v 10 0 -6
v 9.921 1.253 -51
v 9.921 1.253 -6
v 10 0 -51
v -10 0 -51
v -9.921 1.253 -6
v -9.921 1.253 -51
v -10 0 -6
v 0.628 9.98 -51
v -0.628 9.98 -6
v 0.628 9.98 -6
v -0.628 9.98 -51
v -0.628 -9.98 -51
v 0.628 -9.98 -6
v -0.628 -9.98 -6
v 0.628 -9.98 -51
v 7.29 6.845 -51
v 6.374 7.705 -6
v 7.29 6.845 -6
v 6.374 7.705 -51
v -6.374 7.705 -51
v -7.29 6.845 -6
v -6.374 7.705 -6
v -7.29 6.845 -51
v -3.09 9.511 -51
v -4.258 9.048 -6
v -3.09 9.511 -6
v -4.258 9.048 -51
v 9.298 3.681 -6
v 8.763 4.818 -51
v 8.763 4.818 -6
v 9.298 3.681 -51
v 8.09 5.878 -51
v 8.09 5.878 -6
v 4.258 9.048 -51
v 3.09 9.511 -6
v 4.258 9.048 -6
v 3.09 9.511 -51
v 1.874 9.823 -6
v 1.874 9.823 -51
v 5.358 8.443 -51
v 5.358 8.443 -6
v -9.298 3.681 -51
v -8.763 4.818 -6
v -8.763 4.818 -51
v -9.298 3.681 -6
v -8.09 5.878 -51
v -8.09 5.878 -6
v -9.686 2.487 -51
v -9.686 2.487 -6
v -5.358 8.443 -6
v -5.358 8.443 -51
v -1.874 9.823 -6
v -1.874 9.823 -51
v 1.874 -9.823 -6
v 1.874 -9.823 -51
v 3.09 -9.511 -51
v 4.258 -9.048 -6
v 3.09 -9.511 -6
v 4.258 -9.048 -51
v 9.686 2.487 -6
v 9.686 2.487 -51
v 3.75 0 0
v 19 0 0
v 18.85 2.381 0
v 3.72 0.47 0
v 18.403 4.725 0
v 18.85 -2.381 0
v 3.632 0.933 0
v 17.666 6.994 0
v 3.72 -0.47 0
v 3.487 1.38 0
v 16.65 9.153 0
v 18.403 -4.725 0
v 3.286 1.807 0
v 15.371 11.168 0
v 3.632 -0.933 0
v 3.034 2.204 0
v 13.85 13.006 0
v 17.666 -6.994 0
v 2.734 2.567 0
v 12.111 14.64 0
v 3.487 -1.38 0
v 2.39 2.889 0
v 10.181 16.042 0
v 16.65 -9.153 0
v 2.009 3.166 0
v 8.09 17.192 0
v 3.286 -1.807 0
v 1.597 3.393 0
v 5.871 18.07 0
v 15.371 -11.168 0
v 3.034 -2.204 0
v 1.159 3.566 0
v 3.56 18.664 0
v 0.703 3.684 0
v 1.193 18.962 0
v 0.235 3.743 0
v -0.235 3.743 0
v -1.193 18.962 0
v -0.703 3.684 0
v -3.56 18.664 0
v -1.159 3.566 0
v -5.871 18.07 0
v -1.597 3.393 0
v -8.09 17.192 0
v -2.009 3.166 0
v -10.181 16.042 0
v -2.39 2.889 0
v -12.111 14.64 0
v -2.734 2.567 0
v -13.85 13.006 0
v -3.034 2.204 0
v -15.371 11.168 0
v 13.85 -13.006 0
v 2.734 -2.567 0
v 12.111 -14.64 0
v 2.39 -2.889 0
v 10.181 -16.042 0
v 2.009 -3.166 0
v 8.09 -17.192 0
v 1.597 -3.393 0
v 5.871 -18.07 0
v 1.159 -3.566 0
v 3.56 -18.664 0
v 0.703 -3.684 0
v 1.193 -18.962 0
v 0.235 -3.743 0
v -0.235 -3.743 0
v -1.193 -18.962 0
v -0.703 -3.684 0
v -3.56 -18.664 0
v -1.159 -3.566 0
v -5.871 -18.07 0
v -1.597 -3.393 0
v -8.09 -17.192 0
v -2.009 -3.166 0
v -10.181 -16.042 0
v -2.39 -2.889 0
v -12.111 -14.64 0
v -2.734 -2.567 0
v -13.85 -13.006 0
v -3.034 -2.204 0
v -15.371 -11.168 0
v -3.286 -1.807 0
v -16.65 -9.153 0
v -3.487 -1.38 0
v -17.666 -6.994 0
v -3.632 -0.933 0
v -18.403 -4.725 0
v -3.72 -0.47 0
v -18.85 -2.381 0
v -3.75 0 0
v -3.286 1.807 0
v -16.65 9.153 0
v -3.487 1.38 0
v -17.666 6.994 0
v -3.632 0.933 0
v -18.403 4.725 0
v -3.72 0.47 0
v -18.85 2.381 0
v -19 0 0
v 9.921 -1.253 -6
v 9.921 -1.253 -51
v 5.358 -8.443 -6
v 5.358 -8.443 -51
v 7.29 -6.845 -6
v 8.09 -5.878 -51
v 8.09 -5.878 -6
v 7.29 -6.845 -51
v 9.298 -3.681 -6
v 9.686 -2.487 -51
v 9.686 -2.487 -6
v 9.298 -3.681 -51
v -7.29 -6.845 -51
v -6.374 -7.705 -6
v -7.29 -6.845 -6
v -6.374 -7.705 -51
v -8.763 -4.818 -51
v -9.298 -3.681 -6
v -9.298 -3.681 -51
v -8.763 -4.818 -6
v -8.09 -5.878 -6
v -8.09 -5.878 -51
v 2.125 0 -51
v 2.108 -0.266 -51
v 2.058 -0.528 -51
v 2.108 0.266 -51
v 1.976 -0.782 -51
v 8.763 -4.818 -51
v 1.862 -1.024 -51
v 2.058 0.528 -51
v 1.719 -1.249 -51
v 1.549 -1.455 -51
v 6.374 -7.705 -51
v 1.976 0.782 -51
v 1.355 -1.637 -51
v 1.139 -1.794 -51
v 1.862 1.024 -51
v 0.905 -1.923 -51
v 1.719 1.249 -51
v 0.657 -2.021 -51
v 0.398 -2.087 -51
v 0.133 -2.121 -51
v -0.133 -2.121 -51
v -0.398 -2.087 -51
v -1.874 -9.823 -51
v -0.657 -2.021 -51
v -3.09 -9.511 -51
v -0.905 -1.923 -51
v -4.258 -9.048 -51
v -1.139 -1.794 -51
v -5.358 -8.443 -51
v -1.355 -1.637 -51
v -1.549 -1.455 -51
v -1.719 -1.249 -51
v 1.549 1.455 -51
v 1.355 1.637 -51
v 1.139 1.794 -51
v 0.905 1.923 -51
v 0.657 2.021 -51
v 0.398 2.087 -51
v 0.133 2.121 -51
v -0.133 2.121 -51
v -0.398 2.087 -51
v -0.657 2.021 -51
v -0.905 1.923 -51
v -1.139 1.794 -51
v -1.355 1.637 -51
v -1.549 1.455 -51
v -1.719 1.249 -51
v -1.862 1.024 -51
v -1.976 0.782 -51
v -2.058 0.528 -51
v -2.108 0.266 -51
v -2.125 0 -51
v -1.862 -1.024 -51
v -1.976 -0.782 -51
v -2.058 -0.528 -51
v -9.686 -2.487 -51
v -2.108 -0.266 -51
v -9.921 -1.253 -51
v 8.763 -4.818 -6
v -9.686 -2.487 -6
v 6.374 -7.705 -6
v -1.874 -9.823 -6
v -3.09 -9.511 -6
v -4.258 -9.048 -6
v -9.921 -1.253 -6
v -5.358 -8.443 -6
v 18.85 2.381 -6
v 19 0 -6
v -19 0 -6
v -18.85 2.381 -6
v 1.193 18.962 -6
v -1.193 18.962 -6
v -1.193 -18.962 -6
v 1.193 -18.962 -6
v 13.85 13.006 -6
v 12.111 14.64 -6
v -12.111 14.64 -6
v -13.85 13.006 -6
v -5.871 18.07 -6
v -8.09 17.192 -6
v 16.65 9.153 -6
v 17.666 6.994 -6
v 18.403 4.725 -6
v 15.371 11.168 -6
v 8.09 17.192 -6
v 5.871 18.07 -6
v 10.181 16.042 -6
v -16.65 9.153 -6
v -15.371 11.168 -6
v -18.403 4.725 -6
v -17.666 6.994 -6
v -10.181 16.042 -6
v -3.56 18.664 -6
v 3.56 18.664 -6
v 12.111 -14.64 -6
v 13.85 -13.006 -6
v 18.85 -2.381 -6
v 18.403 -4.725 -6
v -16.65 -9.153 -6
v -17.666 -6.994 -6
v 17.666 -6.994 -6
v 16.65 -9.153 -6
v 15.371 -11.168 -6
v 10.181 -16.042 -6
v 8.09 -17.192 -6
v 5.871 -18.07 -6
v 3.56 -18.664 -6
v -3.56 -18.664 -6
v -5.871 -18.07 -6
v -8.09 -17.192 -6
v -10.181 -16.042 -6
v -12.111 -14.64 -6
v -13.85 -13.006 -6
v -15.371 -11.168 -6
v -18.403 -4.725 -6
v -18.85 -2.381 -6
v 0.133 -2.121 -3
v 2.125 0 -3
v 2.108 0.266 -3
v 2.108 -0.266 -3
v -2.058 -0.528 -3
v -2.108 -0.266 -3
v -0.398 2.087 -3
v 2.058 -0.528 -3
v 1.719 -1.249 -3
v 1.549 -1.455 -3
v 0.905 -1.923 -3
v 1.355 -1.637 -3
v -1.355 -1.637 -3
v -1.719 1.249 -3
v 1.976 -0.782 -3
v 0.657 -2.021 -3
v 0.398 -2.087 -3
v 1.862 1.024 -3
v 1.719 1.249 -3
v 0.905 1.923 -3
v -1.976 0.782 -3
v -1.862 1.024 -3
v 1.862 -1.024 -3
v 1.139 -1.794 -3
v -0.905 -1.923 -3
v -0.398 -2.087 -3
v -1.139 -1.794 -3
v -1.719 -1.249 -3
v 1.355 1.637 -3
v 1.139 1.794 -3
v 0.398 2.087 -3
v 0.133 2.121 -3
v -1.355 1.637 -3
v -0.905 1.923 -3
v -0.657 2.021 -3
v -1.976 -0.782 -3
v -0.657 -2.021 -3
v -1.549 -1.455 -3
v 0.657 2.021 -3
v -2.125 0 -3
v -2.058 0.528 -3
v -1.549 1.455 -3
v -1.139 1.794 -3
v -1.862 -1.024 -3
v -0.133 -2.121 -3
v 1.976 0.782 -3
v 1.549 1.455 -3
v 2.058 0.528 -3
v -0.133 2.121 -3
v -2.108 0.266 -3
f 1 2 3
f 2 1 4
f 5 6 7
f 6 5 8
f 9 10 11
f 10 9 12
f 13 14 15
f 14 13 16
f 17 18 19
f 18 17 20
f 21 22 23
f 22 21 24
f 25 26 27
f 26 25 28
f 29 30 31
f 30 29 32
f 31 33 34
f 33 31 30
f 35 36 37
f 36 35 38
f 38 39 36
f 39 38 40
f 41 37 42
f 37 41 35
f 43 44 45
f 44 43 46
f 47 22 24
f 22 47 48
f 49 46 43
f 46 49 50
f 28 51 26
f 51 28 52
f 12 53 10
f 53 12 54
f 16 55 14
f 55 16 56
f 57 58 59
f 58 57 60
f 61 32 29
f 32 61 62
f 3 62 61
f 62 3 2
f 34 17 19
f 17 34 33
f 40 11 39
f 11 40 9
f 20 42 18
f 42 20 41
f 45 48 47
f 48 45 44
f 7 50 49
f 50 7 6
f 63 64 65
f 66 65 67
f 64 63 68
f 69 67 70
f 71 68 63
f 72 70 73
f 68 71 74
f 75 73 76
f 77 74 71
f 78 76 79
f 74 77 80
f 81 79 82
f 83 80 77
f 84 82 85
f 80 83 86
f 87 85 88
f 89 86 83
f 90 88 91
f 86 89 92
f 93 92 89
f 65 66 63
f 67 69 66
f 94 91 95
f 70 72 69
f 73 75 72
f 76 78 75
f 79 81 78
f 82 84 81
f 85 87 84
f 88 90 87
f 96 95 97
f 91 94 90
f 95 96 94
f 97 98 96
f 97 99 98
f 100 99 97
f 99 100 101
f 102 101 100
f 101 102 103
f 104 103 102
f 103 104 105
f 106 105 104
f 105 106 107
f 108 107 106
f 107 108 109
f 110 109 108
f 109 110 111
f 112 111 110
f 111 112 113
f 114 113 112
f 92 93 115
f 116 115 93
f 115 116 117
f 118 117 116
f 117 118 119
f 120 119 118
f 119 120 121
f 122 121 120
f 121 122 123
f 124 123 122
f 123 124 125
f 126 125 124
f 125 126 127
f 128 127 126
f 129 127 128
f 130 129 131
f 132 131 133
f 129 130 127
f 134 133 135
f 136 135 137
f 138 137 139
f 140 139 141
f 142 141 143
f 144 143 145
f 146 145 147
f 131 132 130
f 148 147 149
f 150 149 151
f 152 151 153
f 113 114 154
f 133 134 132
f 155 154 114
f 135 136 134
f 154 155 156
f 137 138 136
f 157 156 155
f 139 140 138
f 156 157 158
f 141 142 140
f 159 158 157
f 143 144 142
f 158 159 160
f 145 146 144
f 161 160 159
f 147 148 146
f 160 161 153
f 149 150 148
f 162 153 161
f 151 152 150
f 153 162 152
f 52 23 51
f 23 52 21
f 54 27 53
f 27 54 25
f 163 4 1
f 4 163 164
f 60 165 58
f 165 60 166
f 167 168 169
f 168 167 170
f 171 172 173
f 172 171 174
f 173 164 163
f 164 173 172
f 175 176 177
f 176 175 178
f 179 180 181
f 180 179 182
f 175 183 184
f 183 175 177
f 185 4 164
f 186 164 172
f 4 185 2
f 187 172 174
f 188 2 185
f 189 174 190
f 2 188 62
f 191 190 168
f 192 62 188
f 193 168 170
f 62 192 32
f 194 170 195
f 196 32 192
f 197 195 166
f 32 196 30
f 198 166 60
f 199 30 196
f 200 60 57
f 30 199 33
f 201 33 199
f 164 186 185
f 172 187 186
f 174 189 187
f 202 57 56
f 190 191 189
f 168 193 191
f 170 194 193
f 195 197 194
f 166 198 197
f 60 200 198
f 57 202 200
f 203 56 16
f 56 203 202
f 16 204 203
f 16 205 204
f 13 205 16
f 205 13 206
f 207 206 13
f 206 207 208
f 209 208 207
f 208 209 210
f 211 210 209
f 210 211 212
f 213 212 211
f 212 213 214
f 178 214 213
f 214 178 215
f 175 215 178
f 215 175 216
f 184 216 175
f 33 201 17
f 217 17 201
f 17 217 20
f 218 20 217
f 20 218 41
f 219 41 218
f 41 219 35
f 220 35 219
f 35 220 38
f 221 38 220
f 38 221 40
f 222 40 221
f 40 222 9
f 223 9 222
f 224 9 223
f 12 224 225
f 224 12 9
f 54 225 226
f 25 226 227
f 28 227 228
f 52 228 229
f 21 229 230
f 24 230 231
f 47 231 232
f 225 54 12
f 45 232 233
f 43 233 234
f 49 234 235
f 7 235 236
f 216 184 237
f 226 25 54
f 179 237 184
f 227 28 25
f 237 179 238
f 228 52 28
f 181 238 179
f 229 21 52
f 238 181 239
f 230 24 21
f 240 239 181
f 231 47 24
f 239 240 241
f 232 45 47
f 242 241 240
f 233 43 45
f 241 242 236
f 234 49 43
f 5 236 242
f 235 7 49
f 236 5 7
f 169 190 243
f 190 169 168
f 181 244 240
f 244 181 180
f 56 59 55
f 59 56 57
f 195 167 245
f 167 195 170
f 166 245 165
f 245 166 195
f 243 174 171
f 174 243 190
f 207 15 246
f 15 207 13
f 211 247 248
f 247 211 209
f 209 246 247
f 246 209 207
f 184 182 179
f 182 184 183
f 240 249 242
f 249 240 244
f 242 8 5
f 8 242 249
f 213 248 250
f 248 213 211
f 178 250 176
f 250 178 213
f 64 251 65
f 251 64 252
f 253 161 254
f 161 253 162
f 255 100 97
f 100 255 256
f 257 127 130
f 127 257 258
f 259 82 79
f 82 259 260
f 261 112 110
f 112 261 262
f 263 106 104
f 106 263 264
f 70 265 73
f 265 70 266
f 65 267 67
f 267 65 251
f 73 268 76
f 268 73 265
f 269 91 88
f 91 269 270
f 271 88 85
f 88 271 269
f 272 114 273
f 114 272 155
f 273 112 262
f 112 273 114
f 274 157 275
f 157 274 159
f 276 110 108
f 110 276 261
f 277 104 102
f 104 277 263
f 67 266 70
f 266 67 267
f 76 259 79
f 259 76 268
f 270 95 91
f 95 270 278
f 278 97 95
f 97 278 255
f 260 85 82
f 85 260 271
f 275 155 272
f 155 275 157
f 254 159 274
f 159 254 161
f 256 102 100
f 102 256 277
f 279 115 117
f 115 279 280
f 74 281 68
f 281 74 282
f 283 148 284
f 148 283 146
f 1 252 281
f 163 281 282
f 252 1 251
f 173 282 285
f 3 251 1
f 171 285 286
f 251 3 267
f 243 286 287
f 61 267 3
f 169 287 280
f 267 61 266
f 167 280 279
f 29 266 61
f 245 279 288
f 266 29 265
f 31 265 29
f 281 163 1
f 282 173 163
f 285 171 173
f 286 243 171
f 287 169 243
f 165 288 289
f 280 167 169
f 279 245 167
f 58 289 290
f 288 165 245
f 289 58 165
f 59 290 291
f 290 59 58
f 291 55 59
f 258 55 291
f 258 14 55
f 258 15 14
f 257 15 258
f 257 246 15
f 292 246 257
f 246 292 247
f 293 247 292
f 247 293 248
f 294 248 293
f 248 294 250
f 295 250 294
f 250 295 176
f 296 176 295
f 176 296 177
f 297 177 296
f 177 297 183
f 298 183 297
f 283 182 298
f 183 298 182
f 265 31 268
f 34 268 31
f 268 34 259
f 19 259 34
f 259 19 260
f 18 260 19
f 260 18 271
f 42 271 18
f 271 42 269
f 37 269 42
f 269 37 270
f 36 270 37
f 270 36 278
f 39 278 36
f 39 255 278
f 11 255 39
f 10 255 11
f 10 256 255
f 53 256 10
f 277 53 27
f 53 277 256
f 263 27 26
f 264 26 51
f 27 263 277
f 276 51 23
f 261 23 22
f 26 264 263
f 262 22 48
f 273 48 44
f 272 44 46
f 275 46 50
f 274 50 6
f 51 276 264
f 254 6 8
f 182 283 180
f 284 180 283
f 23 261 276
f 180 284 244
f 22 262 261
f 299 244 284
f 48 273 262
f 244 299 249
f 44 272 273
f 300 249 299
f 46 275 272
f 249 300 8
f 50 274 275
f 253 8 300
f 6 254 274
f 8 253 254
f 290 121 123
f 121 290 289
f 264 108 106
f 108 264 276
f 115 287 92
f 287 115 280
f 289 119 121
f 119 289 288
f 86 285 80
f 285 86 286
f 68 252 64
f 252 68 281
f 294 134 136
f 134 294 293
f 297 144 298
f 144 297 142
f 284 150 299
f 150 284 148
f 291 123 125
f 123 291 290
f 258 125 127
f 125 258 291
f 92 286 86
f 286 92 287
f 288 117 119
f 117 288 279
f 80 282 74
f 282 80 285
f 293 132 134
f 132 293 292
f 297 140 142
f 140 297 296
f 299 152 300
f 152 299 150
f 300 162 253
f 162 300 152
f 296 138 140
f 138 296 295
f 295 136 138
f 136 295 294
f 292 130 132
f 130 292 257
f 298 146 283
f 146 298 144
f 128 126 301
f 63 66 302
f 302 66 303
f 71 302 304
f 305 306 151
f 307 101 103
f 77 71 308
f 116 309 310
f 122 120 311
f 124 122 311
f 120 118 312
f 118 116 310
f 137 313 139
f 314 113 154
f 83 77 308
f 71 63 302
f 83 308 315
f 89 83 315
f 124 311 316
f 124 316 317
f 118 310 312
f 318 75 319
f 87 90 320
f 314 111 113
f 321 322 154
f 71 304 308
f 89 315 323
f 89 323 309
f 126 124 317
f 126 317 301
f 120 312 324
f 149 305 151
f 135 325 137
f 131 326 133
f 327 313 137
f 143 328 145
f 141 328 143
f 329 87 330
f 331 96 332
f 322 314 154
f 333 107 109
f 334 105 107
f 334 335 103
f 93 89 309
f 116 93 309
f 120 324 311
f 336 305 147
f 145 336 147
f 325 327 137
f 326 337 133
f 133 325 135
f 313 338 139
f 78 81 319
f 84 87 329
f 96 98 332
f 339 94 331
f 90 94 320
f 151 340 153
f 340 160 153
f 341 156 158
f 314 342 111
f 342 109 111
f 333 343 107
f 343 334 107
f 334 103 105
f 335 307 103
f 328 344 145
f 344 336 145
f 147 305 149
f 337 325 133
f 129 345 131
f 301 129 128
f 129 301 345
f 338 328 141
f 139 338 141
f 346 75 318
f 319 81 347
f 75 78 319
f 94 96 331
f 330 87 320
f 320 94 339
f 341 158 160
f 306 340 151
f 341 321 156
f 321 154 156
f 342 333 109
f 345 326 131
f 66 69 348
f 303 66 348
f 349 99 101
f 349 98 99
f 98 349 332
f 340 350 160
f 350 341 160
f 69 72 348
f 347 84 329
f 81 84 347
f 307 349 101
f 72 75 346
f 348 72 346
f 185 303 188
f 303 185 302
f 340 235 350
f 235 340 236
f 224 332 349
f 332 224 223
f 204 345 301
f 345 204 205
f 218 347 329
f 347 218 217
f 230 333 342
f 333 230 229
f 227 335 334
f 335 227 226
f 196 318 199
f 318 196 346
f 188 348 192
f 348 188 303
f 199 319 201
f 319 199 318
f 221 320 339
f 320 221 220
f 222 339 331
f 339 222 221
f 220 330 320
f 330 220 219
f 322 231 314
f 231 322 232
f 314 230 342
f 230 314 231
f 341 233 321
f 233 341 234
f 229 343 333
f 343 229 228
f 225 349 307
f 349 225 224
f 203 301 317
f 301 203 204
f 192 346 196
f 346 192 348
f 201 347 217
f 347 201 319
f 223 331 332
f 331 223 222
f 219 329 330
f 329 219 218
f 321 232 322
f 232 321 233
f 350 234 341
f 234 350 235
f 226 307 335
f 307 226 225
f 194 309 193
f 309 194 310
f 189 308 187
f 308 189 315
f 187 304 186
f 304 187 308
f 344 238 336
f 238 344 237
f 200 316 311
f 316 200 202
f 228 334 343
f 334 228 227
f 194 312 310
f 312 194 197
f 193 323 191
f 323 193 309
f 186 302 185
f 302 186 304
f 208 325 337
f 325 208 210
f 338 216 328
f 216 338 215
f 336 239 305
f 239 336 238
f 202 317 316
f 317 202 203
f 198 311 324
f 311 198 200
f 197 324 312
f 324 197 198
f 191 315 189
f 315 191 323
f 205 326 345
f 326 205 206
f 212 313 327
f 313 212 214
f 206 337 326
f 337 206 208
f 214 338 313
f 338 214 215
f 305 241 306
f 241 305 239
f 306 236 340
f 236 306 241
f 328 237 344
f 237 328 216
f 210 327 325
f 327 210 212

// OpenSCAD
$fn = 50;


difference() {
	union() {
		translate(v = [0, 0, -51.0000000000]) {
			cylinder(h = 51, r = 10.0000000000);
		}
		translate(v = [0, 0, -6.0000000000]) {
			cylinder(h = 6, r = 19.0000000000);
		}
	}
	union() {
		translate(v = [0, 0, 0]) {
			rotate(a = [0, 0, 0]) {
				difference() {
					union() {
						#translate(v = [0, 0, -51.0000000000]) {
							cylinder(h = 51, r = 2.0000000000);
						}
						#translate(v = [0, 0, -3]) {
							cylinder(h = 3, r = 10.0000000000, r1 = 2.1250000000, r2 = 3.7500000000);
						}
						#translate(v = [0, 0, -51.0000000000]) {
							cylinder(h = 51, r = 2.1250000000);
						}
						#translate(v = [0, 0, -51.0000000000]) {
							cylinder(h = 51, r = 2.0000000000);
						}
					}
					union();
				}
			}
		}
	}
}
